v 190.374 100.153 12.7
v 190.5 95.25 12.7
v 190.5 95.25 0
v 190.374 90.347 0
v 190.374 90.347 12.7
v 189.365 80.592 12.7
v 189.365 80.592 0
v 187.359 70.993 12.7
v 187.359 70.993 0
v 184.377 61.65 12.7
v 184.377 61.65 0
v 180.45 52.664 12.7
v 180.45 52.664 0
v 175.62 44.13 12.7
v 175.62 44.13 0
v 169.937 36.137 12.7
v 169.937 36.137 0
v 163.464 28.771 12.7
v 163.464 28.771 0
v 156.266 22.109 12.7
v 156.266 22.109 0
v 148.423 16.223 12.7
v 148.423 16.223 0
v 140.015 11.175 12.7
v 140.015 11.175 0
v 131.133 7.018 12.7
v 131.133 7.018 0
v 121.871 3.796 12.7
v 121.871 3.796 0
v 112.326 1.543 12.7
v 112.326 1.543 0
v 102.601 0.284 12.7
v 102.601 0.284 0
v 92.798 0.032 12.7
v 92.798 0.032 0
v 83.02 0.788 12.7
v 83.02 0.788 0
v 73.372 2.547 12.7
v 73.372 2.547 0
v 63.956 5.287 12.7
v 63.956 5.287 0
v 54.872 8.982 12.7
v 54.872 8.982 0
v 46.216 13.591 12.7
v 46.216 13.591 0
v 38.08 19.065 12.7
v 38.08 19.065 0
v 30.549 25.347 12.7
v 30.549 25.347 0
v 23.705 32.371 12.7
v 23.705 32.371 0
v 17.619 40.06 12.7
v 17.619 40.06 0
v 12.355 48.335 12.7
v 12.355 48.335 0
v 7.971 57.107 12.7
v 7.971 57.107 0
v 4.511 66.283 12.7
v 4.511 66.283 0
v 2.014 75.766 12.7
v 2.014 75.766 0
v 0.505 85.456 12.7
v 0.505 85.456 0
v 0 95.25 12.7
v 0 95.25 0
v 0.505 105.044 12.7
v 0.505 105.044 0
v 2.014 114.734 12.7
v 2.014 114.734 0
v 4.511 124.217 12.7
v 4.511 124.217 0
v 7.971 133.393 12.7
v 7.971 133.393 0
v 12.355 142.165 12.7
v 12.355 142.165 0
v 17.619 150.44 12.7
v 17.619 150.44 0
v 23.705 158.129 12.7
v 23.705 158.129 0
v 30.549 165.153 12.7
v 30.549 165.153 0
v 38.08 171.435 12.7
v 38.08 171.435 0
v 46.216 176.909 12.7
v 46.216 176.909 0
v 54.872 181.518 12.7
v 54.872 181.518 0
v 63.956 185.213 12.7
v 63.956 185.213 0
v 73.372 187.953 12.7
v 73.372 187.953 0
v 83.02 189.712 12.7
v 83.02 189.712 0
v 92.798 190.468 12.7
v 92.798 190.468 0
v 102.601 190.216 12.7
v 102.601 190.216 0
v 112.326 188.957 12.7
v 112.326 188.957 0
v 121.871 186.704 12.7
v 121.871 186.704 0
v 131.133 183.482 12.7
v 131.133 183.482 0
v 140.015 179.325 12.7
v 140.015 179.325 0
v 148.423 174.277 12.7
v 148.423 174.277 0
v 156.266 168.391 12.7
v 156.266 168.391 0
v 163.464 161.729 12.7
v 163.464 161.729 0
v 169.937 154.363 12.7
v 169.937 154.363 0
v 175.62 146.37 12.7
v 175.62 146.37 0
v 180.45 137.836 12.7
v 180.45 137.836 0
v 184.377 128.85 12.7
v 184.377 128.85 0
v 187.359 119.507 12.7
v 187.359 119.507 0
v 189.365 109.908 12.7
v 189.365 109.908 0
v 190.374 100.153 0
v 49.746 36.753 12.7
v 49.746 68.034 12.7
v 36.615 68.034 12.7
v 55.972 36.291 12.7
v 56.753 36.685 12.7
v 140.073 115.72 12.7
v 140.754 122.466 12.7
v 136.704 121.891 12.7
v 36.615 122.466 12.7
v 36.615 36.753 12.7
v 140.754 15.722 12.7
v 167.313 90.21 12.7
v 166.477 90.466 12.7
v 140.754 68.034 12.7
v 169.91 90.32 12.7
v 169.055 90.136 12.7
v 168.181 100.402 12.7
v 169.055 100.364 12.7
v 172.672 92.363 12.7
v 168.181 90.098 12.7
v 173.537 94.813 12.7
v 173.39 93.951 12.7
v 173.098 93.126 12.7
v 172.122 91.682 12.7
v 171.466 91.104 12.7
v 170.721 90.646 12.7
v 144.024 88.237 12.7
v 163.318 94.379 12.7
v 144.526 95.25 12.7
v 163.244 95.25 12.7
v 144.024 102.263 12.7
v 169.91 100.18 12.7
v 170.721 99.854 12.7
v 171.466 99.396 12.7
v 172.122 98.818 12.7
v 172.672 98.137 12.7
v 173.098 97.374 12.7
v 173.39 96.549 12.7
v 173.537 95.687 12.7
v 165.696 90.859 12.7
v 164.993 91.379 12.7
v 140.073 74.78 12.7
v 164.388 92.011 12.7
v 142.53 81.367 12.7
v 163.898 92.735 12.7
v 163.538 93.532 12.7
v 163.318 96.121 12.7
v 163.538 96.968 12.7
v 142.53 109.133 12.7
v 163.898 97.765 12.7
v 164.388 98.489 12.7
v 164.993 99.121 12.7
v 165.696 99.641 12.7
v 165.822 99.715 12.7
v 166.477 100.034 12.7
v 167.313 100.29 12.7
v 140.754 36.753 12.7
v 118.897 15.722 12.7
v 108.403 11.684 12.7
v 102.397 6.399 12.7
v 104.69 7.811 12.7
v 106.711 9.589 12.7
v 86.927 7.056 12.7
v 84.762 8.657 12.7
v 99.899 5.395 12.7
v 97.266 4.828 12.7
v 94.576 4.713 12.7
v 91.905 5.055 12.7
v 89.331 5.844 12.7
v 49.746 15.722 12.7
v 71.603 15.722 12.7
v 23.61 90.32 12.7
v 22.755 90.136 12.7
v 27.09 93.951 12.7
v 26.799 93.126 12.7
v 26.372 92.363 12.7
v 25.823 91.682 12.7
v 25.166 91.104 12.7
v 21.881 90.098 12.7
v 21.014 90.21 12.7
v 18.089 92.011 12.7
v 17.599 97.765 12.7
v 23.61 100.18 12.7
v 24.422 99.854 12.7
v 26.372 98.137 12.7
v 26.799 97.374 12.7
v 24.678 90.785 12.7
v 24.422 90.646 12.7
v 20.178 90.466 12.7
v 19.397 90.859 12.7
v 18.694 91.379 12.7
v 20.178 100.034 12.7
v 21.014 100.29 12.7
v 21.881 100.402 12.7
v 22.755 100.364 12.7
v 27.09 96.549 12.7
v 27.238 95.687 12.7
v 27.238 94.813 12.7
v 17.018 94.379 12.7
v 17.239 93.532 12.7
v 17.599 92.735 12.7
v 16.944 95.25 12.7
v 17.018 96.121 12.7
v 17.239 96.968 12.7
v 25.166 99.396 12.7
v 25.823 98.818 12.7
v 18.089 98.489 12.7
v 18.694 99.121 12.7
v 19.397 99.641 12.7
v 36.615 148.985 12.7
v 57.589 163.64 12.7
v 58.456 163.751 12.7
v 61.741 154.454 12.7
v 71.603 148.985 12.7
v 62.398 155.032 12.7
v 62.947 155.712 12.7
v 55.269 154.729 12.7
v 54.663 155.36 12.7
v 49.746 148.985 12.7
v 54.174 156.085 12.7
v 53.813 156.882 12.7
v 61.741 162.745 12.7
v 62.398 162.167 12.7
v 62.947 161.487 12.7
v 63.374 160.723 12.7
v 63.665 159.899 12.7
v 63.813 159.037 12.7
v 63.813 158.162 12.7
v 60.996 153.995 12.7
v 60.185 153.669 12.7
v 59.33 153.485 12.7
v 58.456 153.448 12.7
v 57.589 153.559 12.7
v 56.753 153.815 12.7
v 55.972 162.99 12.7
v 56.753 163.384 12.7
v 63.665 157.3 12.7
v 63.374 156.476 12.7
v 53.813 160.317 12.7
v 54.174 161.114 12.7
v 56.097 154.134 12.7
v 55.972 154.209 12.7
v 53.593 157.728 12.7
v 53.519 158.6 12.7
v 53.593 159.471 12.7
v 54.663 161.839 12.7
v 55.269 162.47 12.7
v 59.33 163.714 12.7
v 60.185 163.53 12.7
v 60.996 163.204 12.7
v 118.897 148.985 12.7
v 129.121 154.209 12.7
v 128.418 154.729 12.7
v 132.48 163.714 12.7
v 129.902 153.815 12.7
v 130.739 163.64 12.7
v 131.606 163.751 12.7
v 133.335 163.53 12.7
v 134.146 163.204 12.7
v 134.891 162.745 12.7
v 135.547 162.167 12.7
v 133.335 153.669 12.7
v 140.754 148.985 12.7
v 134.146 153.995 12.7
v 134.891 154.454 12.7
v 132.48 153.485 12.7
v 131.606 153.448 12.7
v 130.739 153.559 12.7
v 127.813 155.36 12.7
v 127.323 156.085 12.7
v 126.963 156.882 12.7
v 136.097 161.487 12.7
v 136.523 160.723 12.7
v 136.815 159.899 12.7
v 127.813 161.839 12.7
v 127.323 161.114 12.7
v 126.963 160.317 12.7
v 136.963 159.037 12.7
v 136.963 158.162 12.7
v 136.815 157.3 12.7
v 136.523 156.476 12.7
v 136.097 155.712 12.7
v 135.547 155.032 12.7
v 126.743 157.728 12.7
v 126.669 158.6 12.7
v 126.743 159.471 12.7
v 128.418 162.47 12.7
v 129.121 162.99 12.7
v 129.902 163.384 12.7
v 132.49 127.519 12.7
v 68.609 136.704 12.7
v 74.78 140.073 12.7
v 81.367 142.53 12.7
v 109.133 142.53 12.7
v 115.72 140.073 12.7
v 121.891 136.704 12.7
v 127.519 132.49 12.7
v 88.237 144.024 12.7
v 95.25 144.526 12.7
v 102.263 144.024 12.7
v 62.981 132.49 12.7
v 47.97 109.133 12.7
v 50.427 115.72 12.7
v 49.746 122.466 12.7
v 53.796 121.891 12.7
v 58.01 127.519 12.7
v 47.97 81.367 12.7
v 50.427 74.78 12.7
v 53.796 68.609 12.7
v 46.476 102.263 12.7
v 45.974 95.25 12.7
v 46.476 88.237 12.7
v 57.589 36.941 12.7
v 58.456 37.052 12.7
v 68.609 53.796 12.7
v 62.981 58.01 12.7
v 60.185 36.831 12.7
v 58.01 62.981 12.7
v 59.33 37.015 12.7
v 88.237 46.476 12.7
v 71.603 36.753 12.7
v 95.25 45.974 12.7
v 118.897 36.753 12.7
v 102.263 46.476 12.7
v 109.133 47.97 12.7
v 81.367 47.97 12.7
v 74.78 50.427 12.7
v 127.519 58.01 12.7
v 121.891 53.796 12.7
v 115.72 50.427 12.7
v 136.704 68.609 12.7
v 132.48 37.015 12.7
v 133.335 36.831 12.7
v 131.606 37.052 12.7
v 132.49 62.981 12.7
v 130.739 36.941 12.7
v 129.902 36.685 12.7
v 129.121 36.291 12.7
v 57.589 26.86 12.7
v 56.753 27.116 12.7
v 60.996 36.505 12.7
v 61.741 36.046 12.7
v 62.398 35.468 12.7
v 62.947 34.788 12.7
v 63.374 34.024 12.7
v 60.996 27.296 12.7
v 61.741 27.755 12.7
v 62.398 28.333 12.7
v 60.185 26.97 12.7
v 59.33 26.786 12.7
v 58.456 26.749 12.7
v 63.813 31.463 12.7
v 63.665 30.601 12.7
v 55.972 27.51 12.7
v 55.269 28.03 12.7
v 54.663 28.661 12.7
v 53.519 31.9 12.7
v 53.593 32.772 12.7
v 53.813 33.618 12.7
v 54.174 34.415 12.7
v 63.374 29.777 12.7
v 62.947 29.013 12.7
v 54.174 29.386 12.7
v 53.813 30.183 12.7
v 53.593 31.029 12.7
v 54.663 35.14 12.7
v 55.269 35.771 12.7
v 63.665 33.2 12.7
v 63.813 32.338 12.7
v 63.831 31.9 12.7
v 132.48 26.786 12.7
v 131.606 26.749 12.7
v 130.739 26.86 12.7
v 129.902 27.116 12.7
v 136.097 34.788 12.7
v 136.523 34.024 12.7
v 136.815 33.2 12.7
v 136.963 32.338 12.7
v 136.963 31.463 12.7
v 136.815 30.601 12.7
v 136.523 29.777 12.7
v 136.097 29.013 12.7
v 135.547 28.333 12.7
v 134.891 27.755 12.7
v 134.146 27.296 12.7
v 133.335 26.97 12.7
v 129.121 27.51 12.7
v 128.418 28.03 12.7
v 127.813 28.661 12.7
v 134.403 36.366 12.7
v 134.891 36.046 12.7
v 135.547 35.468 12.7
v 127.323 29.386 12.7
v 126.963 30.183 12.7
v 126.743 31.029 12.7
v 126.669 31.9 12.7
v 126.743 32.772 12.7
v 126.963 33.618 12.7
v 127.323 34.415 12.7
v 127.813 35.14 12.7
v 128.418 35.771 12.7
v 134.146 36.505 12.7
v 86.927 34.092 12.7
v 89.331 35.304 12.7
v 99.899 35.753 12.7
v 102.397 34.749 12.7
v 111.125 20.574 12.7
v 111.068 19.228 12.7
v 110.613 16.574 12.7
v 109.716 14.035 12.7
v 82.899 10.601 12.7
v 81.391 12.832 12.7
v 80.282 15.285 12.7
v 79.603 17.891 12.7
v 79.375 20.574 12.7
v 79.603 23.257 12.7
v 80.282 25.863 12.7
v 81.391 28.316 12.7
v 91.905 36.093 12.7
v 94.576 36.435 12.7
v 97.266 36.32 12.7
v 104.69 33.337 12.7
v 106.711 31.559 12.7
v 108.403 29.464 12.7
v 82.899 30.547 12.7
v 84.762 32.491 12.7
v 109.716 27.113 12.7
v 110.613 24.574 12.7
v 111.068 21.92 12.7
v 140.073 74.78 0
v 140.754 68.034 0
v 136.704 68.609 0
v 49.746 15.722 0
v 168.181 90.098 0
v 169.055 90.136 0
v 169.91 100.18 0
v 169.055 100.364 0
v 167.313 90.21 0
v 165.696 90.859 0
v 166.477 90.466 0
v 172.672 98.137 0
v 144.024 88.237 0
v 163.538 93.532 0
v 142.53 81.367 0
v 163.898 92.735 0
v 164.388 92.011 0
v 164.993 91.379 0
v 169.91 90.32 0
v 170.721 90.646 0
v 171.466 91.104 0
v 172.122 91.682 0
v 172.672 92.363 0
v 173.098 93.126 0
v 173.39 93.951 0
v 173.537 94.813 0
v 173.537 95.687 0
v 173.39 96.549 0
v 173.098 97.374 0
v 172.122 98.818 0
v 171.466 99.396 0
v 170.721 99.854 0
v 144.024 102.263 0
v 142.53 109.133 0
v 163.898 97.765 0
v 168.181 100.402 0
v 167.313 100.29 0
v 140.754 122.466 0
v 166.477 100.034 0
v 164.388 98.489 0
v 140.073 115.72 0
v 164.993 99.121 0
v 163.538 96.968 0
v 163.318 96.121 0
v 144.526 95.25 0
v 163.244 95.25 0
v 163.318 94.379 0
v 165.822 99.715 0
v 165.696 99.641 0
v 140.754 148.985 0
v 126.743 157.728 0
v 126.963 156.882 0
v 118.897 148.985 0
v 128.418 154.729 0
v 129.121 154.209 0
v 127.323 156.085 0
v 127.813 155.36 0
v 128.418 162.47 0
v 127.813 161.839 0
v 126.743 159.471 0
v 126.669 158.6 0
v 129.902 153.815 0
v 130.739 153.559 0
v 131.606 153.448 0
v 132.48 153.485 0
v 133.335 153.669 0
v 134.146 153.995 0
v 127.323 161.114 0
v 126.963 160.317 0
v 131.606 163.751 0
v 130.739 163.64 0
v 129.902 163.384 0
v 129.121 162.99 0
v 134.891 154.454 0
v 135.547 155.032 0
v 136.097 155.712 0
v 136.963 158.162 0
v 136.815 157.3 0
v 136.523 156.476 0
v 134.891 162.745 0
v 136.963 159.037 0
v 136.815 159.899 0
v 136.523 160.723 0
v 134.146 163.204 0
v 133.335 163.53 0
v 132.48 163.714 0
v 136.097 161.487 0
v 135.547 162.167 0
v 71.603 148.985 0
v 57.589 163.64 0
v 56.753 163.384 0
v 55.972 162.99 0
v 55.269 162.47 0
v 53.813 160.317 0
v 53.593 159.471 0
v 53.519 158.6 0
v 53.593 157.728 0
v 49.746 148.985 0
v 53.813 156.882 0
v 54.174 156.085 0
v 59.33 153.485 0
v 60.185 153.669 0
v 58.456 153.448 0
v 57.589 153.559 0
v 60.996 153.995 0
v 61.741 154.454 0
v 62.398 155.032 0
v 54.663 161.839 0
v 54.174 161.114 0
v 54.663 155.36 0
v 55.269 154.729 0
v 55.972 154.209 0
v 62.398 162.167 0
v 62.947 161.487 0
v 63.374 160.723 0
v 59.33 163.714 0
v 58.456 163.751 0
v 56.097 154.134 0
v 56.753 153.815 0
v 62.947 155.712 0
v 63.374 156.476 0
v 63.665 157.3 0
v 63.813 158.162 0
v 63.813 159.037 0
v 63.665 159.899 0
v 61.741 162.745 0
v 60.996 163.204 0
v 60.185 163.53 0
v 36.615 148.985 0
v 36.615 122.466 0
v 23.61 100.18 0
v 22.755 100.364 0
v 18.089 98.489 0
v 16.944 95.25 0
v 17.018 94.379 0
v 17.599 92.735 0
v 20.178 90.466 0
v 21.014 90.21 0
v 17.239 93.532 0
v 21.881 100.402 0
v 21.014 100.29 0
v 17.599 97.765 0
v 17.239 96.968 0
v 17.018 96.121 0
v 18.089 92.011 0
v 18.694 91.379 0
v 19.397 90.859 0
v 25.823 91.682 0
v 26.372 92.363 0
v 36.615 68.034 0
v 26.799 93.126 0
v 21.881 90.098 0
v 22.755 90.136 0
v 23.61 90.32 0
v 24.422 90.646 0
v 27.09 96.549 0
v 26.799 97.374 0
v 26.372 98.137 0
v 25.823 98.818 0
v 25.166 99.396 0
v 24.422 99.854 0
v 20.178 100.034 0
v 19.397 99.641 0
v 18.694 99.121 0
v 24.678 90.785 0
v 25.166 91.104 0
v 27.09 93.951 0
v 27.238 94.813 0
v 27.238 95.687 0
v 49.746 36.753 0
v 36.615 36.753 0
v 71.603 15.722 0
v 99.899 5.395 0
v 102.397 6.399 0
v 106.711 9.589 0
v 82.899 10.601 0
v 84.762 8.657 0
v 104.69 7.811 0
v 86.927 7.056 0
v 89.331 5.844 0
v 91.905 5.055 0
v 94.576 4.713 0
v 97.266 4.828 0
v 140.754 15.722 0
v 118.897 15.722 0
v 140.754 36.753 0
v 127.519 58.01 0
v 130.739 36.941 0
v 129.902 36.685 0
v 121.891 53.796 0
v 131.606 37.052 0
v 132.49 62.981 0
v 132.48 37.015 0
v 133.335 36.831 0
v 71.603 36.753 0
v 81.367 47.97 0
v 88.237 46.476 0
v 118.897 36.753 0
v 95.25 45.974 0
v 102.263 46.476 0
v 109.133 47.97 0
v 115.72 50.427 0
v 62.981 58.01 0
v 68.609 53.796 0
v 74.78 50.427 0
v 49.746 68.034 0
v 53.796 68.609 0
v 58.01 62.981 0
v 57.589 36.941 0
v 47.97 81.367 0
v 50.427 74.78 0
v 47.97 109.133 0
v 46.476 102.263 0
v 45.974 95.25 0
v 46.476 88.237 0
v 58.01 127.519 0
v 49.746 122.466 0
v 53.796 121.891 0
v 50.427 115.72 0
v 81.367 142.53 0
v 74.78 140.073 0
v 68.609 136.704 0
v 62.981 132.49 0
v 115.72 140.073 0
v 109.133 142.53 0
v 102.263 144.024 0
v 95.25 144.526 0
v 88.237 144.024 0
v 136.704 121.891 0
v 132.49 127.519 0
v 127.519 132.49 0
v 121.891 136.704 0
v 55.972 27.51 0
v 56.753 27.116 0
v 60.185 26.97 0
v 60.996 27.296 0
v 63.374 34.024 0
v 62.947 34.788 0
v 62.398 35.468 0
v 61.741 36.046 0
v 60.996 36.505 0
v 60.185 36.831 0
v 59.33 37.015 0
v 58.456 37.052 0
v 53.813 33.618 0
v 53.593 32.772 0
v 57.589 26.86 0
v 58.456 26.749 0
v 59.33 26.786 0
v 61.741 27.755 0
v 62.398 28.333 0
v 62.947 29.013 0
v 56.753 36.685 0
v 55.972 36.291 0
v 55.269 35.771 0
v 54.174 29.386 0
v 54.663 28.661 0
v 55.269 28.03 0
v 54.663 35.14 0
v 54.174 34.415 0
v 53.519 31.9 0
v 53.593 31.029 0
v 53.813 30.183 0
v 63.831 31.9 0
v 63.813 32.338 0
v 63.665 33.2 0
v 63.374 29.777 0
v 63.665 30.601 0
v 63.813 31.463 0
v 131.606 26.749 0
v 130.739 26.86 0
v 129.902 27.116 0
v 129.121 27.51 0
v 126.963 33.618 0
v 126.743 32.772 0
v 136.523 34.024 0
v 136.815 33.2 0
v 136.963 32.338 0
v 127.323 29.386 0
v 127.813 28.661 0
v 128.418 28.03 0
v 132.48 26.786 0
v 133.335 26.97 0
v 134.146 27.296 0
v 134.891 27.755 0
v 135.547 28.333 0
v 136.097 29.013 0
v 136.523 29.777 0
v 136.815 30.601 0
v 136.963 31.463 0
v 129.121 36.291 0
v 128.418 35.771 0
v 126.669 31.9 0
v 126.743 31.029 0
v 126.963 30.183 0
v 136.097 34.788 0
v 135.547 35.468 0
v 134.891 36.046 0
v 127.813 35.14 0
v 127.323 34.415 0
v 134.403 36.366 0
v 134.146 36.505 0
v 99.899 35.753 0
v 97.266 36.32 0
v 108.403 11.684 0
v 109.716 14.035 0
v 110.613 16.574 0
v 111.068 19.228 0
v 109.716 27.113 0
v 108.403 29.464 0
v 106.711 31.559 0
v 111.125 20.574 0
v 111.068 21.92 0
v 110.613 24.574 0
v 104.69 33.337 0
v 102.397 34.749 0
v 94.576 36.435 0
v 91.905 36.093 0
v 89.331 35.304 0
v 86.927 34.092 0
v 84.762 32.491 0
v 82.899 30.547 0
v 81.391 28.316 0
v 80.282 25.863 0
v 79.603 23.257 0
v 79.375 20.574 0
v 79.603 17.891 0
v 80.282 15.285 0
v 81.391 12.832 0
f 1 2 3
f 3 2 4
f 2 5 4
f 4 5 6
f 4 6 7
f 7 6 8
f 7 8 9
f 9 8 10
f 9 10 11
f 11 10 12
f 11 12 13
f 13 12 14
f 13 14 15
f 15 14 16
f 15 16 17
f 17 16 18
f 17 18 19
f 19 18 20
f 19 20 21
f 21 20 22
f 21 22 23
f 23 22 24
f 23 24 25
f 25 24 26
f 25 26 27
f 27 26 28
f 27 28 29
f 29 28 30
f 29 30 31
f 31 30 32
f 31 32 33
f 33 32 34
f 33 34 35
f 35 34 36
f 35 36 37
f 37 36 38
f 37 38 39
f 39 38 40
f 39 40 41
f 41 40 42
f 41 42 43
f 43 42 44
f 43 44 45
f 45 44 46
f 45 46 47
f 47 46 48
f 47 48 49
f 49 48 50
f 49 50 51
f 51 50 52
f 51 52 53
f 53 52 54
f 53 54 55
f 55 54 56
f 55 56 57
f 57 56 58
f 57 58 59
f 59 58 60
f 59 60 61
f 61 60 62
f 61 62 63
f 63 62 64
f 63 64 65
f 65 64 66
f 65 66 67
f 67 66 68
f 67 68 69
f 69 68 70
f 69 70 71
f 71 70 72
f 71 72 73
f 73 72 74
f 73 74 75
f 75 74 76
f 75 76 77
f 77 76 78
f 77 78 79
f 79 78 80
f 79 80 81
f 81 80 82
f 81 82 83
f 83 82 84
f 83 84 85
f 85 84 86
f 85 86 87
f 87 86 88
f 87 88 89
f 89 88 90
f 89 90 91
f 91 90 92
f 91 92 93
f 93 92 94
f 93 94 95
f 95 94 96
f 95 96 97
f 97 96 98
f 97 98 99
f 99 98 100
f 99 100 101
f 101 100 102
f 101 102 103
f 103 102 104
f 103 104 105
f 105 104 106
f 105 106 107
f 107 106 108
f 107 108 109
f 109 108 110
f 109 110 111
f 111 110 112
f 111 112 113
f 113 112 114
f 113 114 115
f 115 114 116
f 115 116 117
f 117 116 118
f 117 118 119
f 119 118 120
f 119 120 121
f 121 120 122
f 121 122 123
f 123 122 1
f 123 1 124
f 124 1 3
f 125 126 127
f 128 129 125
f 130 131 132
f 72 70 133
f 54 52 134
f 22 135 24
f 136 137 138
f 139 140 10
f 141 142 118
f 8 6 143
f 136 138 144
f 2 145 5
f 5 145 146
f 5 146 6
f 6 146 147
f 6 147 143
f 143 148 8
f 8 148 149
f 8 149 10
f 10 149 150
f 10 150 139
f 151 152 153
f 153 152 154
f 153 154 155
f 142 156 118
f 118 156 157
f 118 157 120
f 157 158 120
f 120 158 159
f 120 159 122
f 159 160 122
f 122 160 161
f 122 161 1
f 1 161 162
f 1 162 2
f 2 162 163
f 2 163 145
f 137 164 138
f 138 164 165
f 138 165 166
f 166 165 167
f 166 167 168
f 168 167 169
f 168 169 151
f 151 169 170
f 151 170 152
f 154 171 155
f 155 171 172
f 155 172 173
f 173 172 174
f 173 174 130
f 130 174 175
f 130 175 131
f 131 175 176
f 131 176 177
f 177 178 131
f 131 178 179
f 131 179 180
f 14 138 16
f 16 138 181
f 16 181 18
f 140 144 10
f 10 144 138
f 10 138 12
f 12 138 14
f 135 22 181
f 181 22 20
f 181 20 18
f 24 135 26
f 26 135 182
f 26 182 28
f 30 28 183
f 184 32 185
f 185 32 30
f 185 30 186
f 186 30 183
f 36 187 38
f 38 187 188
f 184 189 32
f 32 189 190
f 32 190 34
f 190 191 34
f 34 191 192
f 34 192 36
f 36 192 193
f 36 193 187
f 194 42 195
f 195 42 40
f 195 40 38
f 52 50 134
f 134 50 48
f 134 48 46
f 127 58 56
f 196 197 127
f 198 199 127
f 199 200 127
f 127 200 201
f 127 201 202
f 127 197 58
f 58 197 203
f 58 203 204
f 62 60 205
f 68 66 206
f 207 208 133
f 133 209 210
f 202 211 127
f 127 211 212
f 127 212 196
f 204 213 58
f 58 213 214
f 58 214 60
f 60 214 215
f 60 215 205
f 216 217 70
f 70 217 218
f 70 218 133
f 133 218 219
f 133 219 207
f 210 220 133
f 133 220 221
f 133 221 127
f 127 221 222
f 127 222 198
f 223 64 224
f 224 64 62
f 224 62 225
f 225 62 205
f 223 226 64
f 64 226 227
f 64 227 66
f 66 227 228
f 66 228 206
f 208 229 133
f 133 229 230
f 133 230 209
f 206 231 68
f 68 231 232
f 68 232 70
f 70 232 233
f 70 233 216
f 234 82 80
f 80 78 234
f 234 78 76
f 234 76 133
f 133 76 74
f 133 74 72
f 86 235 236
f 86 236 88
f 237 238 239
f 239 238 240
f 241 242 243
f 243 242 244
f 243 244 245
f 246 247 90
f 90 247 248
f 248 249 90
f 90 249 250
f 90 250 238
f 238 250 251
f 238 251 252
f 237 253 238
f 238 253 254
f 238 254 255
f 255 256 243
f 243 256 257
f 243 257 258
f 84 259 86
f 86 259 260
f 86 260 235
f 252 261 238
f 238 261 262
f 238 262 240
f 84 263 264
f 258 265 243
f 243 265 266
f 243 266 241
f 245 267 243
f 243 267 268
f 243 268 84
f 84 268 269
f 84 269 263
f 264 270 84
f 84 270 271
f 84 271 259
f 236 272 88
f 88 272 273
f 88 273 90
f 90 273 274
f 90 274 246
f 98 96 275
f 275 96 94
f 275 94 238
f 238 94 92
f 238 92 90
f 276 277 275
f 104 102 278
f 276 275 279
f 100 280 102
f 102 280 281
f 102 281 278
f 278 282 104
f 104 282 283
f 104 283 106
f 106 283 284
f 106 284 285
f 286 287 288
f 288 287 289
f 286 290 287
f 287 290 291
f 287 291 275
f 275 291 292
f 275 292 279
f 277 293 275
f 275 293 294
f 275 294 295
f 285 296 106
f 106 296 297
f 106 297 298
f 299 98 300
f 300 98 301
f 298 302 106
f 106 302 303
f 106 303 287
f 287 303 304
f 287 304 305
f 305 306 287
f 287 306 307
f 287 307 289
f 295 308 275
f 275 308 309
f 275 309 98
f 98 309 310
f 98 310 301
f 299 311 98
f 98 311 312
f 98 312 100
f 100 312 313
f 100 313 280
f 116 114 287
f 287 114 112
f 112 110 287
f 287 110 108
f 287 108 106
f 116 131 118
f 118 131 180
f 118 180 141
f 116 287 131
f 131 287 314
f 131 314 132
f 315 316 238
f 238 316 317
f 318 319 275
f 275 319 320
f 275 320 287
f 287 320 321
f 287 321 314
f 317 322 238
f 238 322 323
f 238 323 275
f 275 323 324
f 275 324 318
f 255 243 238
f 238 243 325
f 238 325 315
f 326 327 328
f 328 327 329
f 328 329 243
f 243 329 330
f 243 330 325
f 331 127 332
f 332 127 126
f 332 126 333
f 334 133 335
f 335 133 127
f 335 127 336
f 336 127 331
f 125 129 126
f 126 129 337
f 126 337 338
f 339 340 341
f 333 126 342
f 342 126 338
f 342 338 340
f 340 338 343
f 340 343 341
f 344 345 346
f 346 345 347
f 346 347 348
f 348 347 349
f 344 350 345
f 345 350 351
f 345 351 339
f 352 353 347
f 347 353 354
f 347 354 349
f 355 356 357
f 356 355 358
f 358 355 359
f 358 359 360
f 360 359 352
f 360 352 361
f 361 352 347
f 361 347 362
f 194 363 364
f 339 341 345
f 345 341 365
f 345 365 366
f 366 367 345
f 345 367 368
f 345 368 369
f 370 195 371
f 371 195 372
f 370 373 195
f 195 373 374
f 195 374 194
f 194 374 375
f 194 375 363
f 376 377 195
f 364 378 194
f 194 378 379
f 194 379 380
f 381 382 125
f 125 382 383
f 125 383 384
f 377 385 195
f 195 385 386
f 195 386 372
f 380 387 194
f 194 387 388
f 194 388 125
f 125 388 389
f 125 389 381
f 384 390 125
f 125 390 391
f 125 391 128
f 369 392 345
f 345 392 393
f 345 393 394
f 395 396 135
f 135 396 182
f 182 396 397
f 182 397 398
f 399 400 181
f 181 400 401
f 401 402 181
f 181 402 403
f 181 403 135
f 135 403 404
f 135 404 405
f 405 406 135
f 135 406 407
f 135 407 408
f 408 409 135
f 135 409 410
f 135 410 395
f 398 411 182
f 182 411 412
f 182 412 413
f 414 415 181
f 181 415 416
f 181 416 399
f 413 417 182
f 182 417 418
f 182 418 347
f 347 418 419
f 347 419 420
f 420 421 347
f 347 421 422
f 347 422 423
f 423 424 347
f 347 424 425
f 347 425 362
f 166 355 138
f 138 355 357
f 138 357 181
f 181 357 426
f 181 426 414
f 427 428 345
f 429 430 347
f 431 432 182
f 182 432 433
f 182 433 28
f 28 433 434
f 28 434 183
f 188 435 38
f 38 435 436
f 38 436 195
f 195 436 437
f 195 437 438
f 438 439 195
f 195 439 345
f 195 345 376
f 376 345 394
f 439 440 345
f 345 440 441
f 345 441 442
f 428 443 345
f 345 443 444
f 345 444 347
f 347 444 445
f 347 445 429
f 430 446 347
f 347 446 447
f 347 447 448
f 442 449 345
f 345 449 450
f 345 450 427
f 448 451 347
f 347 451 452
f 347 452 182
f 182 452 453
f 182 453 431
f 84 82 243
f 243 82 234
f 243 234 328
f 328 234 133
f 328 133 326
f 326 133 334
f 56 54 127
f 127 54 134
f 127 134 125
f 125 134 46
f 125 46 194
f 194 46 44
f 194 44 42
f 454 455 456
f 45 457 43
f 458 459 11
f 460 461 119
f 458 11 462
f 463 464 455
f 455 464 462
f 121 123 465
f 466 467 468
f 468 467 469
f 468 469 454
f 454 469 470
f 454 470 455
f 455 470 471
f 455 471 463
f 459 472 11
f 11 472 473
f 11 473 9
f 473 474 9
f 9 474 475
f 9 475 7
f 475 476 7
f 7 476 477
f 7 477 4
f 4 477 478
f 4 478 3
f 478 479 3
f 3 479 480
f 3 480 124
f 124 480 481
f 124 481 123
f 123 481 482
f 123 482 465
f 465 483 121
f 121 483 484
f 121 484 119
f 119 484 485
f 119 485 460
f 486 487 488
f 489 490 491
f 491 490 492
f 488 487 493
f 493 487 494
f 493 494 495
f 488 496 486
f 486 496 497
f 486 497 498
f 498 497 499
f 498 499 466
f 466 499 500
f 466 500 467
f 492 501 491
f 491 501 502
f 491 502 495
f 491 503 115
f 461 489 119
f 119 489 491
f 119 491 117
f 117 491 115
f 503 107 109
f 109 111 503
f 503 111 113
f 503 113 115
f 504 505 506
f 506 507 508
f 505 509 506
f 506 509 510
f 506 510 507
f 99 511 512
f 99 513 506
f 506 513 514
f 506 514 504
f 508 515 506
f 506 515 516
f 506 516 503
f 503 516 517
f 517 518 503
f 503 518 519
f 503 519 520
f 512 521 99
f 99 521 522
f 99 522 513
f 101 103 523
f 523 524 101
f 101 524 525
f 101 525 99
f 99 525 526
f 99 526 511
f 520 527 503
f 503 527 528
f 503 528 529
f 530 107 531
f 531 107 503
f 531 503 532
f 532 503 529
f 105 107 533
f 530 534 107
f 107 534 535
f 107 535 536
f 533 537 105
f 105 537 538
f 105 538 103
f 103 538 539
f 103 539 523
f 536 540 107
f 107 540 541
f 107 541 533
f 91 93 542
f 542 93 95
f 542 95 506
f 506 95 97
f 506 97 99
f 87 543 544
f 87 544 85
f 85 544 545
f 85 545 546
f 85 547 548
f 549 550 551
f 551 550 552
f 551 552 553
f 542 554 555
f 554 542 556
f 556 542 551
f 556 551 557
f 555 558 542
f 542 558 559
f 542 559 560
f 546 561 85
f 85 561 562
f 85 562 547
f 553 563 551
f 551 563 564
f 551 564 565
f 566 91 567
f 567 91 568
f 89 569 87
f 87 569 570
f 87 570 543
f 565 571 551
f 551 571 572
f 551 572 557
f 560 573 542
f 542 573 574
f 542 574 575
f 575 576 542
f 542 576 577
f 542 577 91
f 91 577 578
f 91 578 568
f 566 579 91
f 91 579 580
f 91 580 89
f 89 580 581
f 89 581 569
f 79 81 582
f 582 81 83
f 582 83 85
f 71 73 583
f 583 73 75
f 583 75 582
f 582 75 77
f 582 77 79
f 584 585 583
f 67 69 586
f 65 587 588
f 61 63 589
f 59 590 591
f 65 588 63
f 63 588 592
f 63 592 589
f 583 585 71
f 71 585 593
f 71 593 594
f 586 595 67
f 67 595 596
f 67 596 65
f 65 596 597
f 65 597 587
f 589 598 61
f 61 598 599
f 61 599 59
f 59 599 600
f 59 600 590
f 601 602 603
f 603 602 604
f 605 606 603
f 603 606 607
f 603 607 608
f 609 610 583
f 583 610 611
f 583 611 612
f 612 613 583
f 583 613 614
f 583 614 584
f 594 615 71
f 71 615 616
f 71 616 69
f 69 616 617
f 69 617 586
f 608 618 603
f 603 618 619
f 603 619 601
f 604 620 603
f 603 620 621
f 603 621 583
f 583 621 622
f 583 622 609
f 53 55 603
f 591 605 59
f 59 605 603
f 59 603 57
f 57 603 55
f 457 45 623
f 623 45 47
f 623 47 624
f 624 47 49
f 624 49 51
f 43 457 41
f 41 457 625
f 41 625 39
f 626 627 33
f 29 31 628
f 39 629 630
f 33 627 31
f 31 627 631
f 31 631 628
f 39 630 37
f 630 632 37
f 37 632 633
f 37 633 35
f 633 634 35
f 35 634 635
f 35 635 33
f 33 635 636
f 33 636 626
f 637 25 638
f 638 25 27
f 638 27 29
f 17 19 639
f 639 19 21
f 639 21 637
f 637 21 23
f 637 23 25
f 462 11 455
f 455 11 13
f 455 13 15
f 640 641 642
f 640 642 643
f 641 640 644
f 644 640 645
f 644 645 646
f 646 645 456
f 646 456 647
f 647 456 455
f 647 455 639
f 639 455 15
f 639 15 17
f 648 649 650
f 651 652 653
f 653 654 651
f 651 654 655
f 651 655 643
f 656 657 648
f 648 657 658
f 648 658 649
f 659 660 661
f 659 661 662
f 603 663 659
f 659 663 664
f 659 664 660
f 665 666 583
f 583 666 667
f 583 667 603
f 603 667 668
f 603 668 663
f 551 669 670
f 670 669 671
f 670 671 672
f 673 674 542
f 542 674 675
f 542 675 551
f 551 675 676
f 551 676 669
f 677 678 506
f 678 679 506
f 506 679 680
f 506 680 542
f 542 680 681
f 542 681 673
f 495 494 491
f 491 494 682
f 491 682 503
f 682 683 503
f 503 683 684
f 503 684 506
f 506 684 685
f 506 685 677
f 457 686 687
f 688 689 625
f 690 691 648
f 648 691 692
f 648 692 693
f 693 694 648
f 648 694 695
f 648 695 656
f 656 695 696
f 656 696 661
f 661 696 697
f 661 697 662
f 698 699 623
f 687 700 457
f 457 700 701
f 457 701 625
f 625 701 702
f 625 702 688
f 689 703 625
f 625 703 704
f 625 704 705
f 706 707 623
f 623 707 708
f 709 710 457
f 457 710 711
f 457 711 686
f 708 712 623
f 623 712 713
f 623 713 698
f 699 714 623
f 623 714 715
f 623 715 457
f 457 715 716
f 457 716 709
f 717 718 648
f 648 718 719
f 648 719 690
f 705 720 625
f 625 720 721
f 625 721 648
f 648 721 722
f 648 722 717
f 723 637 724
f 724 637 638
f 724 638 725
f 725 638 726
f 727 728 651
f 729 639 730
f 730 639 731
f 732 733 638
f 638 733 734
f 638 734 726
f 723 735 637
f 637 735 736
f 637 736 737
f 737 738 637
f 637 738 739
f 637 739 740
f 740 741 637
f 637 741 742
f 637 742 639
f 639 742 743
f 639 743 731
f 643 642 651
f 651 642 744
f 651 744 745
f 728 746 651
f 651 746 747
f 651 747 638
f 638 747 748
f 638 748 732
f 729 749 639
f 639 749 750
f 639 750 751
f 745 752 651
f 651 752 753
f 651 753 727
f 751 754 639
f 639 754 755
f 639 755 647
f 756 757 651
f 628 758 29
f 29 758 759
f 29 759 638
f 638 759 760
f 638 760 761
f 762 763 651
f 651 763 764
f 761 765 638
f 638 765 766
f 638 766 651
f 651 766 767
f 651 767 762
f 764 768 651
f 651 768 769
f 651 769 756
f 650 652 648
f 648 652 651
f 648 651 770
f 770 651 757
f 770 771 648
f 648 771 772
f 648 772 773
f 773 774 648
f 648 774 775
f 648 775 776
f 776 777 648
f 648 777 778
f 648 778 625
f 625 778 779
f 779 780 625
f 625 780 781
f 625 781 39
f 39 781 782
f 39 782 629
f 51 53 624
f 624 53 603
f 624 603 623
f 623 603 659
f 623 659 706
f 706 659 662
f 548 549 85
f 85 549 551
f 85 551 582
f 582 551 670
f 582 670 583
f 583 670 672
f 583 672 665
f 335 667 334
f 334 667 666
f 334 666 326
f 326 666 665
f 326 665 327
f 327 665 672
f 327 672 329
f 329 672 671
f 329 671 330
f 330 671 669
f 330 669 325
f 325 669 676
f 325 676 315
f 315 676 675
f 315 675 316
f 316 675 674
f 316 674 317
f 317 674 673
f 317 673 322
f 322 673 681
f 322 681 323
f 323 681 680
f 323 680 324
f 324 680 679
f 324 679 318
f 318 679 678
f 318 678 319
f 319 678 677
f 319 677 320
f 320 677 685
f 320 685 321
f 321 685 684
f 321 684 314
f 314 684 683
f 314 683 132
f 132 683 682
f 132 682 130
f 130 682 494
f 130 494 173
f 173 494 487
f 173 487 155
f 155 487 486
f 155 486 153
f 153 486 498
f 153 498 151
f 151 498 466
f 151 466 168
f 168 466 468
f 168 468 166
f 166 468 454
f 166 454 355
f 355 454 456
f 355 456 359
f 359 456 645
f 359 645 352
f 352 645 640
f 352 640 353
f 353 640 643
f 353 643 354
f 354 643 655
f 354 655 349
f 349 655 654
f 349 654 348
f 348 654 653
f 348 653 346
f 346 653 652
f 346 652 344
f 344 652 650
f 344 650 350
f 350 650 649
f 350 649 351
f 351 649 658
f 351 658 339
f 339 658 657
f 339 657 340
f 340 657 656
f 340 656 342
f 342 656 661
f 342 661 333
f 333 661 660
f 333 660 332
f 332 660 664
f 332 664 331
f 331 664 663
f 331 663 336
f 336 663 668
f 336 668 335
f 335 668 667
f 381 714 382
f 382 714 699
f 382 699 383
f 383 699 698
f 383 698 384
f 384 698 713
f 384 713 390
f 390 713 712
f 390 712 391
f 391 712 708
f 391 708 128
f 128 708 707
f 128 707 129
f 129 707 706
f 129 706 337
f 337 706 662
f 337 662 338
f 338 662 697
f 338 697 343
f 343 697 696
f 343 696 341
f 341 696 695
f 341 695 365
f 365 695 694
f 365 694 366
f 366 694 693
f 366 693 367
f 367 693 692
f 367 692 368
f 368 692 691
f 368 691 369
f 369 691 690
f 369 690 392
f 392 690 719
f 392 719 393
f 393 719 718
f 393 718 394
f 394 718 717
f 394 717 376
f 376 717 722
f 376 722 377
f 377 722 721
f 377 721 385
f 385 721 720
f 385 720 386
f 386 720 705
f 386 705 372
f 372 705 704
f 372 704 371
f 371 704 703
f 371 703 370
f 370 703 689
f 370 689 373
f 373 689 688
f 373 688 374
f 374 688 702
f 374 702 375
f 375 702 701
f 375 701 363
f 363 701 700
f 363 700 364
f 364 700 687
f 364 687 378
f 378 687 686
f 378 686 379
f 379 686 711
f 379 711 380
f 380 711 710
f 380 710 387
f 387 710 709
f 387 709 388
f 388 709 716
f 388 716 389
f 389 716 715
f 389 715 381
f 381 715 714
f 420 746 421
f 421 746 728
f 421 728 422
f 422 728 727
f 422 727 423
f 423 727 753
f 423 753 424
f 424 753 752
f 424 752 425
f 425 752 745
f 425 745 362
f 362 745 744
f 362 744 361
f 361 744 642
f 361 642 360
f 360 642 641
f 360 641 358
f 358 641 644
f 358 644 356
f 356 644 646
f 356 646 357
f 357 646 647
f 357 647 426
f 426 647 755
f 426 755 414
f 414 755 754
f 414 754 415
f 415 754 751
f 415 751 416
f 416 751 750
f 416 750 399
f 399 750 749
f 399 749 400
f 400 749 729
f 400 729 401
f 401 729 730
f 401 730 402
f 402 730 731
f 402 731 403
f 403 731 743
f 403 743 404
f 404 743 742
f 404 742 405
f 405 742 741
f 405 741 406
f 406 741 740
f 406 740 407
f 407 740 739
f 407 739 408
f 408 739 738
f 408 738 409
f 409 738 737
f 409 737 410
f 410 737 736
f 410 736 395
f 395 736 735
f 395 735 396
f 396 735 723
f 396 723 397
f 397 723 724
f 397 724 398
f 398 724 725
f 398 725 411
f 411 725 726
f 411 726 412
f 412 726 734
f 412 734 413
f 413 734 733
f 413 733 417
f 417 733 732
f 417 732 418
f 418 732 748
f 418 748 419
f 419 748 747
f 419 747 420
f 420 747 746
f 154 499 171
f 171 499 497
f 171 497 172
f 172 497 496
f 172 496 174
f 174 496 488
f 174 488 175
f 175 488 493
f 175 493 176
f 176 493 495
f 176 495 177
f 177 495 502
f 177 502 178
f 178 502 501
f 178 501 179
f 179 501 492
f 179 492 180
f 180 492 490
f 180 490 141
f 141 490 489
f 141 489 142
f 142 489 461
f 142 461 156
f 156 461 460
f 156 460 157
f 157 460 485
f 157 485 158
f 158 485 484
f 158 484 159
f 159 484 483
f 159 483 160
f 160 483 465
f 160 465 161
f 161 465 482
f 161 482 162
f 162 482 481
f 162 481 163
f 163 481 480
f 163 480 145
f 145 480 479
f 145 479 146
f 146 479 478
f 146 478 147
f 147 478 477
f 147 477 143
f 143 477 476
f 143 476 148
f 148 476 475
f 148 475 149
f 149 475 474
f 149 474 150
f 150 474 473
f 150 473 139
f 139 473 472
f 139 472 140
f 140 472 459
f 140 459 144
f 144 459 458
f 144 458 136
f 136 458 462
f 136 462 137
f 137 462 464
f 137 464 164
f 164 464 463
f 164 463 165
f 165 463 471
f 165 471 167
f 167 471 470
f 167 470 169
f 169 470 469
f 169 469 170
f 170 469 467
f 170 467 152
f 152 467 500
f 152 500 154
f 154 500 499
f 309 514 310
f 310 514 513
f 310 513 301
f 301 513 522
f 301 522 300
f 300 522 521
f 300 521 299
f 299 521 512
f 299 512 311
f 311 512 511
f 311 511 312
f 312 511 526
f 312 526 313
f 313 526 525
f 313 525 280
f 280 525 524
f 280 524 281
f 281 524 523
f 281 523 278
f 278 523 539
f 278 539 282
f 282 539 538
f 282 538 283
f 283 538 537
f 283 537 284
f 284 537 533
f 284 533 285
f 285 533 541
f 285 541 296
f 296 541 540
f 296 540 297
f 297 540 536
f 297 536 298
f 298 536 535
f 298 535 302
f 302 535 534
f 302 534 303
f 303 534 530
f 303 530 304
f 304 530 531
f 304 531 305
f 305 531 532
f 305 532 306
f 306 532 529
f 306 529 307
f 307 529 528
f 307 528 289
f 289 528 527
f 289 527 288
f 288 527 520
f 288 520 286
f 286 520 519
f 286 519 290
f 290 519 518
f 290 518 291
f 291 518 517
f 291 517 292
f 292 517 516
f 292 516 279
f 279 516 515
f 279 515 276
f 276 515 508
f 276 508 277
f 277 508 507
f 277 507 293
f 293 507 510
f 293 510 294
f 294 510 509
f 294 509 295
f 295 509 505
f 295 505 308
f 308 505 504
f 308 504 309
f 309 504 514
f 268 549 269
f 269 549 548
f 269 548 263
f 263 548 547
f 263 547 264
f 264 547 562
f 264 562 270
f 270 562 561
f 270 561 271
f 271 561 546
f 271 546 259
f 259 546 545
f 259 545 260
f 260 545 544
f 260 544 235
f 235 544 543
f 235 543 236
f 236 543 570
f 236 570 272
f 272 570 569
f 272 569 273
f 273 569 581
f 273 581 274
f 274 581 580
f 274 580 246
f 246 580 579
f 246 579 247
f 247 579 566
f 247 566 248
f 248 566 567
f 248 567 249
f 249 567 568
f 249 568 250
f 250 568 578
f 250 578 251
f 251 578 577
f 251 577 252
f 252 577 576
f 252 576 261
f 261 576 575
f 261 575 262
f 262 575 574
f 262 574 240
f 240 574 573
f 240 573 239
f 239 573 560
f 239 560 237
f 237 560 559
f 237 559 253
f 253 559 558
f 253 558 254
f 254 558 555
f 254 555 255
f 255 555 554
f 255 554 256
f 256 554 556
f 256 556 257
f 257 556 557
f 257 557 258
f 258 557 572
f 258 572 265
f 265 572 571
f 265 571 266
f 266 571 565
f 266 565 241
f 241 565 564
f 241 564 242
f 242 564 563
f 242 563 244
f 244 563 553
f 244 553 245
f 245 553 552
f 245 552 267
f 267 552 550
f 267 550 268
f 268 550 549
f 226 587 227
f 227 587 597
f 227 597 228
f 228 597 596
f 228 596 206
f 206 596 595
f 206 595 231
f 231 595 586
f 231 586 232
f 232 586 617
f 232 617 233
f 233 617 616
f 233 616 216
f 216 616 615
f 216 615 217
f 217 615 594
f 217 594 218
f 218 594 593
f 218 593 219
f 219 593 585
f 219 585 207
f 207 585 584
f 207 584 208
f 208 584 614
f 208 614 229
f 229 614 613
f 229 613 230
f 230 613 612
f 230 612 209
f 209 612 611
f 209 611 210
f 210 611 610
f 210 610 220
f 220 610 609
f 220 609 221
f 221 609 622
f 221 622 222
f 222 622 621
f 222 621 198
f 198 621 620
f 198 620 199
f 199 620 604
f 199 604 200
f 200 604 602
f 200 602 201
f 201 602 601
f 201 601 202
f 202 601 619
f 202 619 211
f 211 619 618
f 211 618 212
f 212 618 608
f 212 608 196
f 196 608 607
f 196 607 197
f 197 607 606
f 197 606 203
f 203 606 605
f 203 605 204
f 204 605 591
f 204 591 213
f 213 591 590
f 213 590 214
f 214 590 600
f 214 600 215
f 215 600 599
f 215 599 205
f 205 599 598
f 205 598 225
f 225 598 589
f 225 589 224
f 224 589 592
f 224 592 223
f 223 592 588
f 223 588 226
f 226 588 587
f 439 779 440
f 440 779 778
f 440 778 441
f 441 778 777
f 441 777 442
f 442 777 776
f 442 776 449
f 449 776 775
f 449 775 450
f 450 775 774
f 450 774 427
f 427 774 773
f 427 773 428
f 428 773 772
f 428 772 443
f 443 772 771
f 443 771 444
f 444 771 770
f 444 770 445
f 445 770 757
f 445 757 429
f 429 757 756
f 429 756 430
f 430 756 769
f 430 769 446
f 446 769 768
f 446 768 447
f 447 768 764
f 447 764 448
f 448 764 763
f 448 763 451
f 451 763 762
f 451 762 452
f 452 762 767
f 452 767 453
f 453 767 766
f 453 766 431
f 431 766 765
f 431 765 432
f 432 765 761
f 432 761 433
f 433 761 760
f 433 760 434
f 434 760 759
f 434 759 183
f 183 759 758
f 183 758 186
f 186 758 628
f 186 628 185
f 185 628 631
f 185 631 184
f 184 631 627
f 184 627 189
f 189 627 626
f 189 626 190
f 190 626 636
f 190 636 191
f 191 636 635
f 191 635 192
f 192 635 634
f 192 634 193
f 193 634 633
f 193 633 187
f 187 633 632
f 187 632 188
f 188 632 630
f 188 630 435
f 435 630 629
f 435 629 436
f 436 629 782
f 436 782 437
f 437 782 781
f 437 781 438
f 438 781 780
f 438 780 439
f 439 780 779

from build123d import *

# Parameters (mm, degrees)
SKETCH1_R                  = 95.25
F001_EXTRUDE_BOSS_DEPTH    = 12.7
SKETCH2_R                  = 49.276
F002_HOLE_DEPTH            = 270.706859386
SKETCH3_R                  = 5.1562
F003_SEEDHOLECUT_DEPTH     = 270.706859386
F003_CIRCULARPATTERN_COUNT = 6
SKETCH4_R                  = 15.875
F004_EXTRUDE_CUT_DEPTH     = 270.706859386


with BuildPart() as part:
    # Sketch1 → F001_extrude_boss (new body)
    with BuildSketch(Plane.XY):
        with Locations((95.25, 95.25)):
            Circle(SKETCH1_R)
    extrude(amount=F001_EXTRUDE_BOSS_DEPTH)

    # Sketch2 → F002_hole (cut, through all)
    with BuildSketch(Plane.XY):
        with Locations((95.25, 95.25)):
            Circle(SKETCH2_R)
    extrude(amount=F002_HOLE_DEPTH, mode=Mode.SUBTRACT)

    # Sketch3 → F003_SeedHoleCut (cut, through all)
    with BuildSketch(Plane.XY):
        with Locations((58.6751176, 31.900445402)):
            Circle(SKETCH3_R)
    f003_seedholecut = extrude(amount=F003_SEEDHOLECUT_DEPTH, mode=Mode.SUBTRACT)

    # F003_CircularPattern: F003_SeedHoleCut ×6 about axis
    f003_circularpattern_axis = Axis((95.25, 95.25, 12.7), (0, 0, -1))
    for i in range(1, F003_CIRCULARPATTERN_COUNT):
        add(f003_seedholecut.rotate(f003_circularpattern_axis, i * 360 / F003_CIRCULARPATTERN_COUNT), mode=Mode.SUBTRACT)

    # Sketch4 → F004_extrude_cut (cut, through all)
    with BuildSketch(Plane.XY):
        with Locations((95.25, 20.574)):
            Circle(SKETCH4_R)
    extrude(amount=F004_EXTRUDE_CUT_DEPTH, mode=Mode.SUBTRACT)


solid = part.part
